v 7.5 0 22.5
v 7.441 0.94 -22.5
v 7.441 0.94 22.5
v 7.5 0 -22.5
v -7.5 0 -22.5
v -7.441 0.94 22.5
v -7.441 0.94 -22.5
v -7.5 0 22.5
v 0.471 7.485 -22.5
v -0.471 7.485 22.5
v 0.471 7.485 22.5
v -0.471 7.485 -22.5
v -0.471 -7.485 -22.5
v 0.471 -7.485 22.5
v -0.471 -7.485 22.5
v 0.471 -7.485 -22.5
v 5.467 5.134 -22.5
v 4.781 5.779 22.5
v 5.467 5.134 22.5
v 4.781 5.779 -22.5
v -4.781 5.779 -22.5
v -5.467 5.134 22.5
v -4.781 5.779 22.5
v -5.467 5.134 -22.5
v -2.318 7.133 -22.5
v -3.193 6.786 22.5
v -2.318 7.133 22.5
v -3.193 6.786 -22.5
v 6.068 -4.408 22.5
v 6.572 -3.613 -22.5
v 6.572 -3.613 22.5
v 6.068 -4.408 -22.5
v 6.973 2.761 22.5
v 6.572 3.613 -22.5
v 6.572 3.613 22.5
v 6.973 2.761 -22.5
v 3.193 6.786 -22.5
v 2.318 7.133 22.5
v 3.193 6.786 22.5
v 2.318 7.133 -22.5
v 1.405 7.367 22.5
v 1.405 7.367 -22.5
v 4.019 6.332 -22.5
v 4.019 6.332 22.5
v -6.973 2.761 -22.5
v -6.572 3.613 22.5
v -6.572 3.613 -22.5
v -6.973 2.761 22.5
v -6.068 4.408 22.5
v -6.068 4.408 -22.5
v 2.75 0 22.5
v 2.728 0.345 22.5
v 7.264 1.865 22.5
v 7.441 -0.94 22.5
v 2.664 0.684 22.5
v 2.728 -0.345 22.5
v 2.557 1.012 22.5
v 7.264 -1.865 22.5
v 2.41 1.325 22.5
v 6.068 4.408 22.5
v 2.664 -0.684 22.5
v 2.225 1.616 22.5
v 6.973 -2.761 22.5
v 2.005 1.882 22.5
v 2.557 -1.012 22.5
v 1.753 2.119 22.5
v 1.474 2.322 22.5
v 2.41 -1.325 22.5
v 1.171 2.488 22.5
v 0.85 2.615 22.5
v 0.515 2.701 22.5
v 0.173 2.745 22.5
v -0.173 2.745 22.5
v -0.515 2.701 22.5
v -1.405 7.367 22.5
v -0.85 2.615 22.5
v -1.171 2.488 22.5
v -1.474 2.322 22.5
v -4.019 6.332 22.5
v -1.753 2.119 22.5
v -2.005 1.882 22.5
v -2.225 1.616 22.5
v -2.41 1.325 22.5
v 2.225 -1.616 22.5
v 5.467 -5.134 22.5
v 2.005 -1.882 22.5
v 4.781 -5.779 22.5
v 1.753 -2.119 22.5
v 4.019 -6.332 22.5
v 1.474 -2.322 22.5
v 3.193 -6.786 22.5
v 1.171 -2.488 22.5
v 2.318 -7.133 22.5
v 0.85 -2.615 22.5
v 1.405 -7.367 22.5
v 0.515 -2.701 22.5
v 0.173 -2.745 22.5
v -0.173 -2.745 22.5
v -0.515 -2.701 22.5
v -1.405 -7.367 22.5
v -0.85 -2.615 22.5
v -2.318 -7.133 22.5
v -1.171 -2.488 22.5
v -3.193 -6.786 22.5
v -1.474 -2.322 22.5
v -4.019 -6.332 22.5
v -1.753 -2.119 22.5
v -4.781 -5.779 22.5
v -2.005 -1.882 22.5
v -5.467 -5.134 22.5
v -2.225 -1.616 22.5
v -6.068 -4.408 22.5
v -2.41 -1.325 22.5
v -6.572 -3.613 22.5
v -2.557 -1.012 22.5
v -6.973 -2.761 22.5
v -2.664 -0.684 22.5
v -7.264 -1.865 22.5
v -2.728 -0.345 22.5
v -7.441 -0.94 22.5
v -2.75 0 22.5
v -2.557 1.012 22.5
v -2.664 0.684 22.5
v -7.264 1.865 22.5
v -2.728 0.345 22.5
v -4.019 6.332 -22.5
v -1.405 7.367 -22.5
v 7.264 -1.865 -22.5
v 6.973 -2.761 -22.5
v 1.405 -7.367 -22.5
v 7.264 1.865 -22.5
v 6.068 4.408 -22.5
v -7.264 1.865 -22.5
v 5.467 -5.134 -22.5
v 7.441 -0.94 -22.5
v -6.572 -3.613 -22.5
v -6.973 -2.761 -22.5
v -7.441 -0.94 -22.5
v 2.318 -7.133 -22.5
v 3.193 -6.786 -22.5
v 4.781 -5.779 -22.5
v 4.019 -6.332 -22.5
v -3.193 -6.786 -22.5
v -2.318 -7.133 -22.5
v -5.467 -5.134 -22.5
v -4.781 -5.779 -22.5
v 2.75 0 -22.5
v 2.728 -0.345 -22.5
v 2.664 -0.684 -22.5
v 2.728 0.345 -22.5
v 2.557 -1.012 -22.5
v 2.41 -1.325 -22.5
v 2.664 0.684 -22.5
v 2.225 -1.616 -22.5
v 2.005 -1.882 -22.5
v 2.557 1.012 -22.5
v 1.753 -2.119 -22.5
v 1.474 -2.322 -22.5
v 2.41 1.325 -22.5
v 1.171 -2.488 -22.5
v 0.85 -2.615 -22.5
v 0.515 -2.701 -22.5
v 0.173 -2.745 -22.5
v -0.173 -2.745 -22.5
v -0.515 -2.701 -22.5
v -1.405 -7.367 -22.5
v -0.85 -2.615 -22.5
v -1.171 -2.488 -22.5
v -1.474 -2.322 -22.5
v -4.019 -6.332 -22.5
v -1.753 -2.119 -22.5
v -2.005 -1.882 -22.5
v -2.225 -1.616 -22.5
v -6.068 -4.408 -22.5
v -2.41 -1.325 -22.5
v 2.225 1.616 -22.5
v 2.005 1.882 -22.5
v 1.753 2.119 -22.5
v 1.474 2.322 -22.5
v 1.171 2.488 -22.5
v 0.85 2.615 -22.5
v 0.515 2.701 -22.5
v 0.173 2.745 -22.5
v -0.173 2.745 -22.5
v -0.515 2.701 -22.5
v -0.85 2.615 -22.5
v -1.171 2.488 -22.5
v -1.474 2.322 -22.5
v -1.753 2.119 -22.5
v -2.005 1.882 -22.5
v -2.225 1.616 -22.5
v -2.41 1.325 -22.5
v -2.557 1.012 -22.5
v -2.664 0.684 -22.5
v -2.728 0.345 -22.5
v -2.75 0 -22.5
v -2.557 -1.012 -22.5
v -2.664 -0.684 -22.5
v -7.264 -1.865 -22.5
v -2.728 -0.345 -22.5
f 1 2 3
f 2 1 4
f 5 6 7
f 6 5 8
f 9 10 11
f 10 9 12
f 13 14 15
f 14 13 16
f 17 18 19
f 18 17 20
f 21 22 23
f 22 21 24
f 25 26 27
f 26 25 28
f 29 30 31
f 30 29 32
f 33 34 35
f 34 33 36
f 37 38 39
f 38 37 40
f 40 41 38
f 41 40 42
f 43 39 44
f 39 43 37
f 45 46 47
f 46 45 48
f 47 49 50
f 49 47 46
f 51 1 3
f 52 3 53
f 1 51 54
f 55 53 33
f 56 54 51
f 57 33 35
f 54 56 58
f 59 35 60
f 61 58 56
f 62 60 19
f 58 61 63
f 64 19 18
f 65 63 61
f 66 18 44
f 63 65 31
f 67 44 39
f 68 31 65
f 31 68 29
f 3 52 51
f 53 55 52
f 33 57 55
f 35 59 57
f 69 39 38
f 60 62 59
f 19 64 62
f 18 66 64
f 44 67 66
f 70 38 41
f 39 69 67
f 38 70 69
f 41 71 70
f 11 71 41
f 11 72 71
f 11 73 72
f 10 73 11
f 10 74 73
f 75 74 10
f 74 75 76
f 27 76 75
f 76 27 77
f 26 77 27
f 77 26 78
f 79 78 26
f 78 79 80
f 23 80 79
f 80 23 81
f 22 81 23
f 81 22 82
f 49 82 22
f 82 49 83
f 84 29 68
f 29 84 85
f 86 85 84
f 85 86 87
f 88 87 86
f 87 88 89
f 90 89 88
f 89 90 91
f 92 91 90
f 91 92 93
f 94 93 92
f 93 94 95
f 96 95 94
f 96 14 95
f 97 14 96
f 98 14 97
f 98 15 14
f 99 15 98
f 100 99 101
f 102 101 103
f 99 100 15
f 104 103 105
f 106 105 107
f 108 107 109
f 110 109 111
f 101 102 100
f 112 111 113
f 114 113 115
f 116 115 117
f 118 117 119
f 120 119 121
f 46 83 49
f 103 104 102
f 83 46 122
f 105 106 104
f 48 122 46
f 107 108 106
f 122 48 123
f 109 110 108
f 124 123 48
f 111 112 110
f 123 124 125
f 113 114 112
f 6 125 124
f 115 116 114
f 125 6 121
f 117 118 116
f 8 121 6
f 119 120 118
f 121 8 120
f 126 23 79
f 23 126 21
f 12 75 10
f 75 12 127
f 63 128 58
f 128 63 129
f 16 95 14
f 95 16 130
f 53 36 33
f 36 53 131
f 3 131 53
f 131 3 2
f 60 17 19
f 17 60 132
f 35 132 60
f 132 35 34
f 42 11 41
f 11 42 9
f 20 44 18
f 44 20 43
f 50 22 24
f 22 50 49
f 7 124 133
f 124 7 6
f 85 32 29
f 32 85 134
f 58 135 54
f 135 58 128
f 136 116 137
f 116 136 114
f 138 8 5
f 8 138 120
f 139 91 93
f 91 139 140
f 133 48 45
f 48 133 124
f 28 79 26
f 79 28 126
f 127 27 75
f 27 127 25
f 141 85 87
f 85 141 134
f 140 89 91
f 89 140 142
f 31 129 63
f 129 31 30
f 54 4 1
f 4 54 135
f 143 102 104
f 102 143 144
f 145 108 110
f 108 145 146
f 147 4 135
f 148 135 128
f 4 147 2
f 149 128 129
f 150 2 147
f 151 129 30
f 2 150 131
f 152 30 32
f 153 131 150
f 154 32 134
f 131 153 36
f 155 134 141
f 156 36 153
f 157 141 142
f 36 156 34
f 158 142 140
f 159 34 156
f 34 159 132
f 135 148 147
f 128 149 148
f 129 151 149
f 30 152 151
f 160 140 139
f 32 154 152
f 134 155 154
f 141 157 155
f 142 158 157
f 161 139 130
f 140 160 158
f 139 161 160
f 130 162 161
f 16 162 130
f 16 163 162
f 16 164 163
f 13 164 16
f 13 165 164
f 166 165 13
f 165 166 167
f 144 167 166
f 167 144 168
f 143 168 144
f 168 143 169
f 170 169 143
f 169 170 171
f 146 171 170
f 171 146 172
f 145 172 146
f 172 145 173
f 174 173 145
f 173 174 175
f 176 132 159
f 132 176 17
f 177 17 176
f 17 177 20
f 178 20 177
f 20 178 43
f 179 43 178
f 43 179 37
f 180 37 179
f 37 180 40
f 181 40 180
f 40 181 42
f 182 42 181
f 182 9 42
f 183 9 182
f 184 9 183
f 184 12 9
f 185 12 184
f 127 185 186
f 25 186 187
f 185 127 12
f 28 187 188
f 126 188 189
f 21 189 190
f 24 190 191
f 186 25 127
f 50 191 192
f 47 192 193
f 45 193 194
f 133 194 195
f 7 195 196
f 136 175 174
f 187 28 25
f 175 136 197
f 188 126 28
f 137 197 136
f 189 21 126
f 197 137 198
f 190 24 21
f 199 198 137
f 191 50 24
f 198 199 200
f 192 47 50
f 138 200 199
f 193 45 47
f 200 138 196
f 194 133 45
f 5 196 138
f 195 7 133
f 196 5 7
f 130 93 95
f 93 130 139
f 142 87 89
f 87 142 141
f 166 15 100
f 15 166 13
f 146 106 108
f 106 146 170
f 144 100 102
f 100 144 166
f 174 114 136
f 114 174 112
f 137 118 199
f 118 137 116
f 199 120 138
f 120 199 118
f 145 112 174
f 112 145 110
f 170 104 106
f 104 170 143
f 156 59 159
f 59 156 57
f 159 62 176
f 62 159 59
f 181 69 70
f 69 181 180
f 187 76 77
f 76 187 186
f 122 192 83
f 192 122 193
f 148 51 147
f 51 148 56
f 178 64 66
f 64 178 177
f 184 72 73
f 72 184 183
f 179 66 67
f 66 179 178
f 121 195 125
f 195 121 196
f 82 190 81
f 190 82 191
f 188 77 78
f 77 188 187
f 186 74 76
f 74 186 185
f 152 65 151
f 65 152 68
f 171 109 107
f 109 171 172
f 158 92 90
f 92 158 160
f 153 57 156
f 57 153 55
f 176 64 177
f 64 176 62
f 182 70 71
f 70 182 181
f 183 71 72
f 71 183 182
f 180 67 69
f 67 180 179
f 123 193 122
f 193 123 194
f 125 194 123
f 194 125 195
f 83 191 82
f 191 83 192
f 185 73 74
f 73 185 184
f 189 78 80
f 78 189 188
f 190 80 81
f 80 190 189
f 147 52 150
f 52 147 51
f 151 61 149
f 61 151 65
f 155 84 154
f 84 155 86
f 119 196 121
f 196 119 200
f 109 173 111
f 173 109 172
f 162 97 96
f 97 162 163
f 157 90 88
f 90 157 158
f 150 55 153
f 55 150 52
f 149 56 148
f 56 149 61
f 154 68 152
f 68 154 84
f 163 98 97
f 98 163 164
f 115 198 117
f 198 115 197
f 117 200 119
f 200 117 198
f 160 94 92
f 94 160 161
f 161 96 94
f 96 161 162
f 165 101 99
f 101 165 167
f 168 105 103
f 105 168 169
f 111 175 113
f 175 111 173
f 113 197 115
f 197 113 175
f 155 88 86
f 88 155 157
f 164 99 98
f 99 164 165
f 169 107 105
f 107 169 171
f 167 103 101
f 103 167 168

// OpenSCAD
$fn = 50;


difference() {
	union() {
		translate(v = [0, 0, -22.5000000000]) {
			cylinder(h = 45, r = 7.5000000000);
		}
	}
	union() {
		translate(v = [0, 0, -100.0000000000]) {
			cylinder(h = 200, r = 2.7500000000);
		}
	}
}
